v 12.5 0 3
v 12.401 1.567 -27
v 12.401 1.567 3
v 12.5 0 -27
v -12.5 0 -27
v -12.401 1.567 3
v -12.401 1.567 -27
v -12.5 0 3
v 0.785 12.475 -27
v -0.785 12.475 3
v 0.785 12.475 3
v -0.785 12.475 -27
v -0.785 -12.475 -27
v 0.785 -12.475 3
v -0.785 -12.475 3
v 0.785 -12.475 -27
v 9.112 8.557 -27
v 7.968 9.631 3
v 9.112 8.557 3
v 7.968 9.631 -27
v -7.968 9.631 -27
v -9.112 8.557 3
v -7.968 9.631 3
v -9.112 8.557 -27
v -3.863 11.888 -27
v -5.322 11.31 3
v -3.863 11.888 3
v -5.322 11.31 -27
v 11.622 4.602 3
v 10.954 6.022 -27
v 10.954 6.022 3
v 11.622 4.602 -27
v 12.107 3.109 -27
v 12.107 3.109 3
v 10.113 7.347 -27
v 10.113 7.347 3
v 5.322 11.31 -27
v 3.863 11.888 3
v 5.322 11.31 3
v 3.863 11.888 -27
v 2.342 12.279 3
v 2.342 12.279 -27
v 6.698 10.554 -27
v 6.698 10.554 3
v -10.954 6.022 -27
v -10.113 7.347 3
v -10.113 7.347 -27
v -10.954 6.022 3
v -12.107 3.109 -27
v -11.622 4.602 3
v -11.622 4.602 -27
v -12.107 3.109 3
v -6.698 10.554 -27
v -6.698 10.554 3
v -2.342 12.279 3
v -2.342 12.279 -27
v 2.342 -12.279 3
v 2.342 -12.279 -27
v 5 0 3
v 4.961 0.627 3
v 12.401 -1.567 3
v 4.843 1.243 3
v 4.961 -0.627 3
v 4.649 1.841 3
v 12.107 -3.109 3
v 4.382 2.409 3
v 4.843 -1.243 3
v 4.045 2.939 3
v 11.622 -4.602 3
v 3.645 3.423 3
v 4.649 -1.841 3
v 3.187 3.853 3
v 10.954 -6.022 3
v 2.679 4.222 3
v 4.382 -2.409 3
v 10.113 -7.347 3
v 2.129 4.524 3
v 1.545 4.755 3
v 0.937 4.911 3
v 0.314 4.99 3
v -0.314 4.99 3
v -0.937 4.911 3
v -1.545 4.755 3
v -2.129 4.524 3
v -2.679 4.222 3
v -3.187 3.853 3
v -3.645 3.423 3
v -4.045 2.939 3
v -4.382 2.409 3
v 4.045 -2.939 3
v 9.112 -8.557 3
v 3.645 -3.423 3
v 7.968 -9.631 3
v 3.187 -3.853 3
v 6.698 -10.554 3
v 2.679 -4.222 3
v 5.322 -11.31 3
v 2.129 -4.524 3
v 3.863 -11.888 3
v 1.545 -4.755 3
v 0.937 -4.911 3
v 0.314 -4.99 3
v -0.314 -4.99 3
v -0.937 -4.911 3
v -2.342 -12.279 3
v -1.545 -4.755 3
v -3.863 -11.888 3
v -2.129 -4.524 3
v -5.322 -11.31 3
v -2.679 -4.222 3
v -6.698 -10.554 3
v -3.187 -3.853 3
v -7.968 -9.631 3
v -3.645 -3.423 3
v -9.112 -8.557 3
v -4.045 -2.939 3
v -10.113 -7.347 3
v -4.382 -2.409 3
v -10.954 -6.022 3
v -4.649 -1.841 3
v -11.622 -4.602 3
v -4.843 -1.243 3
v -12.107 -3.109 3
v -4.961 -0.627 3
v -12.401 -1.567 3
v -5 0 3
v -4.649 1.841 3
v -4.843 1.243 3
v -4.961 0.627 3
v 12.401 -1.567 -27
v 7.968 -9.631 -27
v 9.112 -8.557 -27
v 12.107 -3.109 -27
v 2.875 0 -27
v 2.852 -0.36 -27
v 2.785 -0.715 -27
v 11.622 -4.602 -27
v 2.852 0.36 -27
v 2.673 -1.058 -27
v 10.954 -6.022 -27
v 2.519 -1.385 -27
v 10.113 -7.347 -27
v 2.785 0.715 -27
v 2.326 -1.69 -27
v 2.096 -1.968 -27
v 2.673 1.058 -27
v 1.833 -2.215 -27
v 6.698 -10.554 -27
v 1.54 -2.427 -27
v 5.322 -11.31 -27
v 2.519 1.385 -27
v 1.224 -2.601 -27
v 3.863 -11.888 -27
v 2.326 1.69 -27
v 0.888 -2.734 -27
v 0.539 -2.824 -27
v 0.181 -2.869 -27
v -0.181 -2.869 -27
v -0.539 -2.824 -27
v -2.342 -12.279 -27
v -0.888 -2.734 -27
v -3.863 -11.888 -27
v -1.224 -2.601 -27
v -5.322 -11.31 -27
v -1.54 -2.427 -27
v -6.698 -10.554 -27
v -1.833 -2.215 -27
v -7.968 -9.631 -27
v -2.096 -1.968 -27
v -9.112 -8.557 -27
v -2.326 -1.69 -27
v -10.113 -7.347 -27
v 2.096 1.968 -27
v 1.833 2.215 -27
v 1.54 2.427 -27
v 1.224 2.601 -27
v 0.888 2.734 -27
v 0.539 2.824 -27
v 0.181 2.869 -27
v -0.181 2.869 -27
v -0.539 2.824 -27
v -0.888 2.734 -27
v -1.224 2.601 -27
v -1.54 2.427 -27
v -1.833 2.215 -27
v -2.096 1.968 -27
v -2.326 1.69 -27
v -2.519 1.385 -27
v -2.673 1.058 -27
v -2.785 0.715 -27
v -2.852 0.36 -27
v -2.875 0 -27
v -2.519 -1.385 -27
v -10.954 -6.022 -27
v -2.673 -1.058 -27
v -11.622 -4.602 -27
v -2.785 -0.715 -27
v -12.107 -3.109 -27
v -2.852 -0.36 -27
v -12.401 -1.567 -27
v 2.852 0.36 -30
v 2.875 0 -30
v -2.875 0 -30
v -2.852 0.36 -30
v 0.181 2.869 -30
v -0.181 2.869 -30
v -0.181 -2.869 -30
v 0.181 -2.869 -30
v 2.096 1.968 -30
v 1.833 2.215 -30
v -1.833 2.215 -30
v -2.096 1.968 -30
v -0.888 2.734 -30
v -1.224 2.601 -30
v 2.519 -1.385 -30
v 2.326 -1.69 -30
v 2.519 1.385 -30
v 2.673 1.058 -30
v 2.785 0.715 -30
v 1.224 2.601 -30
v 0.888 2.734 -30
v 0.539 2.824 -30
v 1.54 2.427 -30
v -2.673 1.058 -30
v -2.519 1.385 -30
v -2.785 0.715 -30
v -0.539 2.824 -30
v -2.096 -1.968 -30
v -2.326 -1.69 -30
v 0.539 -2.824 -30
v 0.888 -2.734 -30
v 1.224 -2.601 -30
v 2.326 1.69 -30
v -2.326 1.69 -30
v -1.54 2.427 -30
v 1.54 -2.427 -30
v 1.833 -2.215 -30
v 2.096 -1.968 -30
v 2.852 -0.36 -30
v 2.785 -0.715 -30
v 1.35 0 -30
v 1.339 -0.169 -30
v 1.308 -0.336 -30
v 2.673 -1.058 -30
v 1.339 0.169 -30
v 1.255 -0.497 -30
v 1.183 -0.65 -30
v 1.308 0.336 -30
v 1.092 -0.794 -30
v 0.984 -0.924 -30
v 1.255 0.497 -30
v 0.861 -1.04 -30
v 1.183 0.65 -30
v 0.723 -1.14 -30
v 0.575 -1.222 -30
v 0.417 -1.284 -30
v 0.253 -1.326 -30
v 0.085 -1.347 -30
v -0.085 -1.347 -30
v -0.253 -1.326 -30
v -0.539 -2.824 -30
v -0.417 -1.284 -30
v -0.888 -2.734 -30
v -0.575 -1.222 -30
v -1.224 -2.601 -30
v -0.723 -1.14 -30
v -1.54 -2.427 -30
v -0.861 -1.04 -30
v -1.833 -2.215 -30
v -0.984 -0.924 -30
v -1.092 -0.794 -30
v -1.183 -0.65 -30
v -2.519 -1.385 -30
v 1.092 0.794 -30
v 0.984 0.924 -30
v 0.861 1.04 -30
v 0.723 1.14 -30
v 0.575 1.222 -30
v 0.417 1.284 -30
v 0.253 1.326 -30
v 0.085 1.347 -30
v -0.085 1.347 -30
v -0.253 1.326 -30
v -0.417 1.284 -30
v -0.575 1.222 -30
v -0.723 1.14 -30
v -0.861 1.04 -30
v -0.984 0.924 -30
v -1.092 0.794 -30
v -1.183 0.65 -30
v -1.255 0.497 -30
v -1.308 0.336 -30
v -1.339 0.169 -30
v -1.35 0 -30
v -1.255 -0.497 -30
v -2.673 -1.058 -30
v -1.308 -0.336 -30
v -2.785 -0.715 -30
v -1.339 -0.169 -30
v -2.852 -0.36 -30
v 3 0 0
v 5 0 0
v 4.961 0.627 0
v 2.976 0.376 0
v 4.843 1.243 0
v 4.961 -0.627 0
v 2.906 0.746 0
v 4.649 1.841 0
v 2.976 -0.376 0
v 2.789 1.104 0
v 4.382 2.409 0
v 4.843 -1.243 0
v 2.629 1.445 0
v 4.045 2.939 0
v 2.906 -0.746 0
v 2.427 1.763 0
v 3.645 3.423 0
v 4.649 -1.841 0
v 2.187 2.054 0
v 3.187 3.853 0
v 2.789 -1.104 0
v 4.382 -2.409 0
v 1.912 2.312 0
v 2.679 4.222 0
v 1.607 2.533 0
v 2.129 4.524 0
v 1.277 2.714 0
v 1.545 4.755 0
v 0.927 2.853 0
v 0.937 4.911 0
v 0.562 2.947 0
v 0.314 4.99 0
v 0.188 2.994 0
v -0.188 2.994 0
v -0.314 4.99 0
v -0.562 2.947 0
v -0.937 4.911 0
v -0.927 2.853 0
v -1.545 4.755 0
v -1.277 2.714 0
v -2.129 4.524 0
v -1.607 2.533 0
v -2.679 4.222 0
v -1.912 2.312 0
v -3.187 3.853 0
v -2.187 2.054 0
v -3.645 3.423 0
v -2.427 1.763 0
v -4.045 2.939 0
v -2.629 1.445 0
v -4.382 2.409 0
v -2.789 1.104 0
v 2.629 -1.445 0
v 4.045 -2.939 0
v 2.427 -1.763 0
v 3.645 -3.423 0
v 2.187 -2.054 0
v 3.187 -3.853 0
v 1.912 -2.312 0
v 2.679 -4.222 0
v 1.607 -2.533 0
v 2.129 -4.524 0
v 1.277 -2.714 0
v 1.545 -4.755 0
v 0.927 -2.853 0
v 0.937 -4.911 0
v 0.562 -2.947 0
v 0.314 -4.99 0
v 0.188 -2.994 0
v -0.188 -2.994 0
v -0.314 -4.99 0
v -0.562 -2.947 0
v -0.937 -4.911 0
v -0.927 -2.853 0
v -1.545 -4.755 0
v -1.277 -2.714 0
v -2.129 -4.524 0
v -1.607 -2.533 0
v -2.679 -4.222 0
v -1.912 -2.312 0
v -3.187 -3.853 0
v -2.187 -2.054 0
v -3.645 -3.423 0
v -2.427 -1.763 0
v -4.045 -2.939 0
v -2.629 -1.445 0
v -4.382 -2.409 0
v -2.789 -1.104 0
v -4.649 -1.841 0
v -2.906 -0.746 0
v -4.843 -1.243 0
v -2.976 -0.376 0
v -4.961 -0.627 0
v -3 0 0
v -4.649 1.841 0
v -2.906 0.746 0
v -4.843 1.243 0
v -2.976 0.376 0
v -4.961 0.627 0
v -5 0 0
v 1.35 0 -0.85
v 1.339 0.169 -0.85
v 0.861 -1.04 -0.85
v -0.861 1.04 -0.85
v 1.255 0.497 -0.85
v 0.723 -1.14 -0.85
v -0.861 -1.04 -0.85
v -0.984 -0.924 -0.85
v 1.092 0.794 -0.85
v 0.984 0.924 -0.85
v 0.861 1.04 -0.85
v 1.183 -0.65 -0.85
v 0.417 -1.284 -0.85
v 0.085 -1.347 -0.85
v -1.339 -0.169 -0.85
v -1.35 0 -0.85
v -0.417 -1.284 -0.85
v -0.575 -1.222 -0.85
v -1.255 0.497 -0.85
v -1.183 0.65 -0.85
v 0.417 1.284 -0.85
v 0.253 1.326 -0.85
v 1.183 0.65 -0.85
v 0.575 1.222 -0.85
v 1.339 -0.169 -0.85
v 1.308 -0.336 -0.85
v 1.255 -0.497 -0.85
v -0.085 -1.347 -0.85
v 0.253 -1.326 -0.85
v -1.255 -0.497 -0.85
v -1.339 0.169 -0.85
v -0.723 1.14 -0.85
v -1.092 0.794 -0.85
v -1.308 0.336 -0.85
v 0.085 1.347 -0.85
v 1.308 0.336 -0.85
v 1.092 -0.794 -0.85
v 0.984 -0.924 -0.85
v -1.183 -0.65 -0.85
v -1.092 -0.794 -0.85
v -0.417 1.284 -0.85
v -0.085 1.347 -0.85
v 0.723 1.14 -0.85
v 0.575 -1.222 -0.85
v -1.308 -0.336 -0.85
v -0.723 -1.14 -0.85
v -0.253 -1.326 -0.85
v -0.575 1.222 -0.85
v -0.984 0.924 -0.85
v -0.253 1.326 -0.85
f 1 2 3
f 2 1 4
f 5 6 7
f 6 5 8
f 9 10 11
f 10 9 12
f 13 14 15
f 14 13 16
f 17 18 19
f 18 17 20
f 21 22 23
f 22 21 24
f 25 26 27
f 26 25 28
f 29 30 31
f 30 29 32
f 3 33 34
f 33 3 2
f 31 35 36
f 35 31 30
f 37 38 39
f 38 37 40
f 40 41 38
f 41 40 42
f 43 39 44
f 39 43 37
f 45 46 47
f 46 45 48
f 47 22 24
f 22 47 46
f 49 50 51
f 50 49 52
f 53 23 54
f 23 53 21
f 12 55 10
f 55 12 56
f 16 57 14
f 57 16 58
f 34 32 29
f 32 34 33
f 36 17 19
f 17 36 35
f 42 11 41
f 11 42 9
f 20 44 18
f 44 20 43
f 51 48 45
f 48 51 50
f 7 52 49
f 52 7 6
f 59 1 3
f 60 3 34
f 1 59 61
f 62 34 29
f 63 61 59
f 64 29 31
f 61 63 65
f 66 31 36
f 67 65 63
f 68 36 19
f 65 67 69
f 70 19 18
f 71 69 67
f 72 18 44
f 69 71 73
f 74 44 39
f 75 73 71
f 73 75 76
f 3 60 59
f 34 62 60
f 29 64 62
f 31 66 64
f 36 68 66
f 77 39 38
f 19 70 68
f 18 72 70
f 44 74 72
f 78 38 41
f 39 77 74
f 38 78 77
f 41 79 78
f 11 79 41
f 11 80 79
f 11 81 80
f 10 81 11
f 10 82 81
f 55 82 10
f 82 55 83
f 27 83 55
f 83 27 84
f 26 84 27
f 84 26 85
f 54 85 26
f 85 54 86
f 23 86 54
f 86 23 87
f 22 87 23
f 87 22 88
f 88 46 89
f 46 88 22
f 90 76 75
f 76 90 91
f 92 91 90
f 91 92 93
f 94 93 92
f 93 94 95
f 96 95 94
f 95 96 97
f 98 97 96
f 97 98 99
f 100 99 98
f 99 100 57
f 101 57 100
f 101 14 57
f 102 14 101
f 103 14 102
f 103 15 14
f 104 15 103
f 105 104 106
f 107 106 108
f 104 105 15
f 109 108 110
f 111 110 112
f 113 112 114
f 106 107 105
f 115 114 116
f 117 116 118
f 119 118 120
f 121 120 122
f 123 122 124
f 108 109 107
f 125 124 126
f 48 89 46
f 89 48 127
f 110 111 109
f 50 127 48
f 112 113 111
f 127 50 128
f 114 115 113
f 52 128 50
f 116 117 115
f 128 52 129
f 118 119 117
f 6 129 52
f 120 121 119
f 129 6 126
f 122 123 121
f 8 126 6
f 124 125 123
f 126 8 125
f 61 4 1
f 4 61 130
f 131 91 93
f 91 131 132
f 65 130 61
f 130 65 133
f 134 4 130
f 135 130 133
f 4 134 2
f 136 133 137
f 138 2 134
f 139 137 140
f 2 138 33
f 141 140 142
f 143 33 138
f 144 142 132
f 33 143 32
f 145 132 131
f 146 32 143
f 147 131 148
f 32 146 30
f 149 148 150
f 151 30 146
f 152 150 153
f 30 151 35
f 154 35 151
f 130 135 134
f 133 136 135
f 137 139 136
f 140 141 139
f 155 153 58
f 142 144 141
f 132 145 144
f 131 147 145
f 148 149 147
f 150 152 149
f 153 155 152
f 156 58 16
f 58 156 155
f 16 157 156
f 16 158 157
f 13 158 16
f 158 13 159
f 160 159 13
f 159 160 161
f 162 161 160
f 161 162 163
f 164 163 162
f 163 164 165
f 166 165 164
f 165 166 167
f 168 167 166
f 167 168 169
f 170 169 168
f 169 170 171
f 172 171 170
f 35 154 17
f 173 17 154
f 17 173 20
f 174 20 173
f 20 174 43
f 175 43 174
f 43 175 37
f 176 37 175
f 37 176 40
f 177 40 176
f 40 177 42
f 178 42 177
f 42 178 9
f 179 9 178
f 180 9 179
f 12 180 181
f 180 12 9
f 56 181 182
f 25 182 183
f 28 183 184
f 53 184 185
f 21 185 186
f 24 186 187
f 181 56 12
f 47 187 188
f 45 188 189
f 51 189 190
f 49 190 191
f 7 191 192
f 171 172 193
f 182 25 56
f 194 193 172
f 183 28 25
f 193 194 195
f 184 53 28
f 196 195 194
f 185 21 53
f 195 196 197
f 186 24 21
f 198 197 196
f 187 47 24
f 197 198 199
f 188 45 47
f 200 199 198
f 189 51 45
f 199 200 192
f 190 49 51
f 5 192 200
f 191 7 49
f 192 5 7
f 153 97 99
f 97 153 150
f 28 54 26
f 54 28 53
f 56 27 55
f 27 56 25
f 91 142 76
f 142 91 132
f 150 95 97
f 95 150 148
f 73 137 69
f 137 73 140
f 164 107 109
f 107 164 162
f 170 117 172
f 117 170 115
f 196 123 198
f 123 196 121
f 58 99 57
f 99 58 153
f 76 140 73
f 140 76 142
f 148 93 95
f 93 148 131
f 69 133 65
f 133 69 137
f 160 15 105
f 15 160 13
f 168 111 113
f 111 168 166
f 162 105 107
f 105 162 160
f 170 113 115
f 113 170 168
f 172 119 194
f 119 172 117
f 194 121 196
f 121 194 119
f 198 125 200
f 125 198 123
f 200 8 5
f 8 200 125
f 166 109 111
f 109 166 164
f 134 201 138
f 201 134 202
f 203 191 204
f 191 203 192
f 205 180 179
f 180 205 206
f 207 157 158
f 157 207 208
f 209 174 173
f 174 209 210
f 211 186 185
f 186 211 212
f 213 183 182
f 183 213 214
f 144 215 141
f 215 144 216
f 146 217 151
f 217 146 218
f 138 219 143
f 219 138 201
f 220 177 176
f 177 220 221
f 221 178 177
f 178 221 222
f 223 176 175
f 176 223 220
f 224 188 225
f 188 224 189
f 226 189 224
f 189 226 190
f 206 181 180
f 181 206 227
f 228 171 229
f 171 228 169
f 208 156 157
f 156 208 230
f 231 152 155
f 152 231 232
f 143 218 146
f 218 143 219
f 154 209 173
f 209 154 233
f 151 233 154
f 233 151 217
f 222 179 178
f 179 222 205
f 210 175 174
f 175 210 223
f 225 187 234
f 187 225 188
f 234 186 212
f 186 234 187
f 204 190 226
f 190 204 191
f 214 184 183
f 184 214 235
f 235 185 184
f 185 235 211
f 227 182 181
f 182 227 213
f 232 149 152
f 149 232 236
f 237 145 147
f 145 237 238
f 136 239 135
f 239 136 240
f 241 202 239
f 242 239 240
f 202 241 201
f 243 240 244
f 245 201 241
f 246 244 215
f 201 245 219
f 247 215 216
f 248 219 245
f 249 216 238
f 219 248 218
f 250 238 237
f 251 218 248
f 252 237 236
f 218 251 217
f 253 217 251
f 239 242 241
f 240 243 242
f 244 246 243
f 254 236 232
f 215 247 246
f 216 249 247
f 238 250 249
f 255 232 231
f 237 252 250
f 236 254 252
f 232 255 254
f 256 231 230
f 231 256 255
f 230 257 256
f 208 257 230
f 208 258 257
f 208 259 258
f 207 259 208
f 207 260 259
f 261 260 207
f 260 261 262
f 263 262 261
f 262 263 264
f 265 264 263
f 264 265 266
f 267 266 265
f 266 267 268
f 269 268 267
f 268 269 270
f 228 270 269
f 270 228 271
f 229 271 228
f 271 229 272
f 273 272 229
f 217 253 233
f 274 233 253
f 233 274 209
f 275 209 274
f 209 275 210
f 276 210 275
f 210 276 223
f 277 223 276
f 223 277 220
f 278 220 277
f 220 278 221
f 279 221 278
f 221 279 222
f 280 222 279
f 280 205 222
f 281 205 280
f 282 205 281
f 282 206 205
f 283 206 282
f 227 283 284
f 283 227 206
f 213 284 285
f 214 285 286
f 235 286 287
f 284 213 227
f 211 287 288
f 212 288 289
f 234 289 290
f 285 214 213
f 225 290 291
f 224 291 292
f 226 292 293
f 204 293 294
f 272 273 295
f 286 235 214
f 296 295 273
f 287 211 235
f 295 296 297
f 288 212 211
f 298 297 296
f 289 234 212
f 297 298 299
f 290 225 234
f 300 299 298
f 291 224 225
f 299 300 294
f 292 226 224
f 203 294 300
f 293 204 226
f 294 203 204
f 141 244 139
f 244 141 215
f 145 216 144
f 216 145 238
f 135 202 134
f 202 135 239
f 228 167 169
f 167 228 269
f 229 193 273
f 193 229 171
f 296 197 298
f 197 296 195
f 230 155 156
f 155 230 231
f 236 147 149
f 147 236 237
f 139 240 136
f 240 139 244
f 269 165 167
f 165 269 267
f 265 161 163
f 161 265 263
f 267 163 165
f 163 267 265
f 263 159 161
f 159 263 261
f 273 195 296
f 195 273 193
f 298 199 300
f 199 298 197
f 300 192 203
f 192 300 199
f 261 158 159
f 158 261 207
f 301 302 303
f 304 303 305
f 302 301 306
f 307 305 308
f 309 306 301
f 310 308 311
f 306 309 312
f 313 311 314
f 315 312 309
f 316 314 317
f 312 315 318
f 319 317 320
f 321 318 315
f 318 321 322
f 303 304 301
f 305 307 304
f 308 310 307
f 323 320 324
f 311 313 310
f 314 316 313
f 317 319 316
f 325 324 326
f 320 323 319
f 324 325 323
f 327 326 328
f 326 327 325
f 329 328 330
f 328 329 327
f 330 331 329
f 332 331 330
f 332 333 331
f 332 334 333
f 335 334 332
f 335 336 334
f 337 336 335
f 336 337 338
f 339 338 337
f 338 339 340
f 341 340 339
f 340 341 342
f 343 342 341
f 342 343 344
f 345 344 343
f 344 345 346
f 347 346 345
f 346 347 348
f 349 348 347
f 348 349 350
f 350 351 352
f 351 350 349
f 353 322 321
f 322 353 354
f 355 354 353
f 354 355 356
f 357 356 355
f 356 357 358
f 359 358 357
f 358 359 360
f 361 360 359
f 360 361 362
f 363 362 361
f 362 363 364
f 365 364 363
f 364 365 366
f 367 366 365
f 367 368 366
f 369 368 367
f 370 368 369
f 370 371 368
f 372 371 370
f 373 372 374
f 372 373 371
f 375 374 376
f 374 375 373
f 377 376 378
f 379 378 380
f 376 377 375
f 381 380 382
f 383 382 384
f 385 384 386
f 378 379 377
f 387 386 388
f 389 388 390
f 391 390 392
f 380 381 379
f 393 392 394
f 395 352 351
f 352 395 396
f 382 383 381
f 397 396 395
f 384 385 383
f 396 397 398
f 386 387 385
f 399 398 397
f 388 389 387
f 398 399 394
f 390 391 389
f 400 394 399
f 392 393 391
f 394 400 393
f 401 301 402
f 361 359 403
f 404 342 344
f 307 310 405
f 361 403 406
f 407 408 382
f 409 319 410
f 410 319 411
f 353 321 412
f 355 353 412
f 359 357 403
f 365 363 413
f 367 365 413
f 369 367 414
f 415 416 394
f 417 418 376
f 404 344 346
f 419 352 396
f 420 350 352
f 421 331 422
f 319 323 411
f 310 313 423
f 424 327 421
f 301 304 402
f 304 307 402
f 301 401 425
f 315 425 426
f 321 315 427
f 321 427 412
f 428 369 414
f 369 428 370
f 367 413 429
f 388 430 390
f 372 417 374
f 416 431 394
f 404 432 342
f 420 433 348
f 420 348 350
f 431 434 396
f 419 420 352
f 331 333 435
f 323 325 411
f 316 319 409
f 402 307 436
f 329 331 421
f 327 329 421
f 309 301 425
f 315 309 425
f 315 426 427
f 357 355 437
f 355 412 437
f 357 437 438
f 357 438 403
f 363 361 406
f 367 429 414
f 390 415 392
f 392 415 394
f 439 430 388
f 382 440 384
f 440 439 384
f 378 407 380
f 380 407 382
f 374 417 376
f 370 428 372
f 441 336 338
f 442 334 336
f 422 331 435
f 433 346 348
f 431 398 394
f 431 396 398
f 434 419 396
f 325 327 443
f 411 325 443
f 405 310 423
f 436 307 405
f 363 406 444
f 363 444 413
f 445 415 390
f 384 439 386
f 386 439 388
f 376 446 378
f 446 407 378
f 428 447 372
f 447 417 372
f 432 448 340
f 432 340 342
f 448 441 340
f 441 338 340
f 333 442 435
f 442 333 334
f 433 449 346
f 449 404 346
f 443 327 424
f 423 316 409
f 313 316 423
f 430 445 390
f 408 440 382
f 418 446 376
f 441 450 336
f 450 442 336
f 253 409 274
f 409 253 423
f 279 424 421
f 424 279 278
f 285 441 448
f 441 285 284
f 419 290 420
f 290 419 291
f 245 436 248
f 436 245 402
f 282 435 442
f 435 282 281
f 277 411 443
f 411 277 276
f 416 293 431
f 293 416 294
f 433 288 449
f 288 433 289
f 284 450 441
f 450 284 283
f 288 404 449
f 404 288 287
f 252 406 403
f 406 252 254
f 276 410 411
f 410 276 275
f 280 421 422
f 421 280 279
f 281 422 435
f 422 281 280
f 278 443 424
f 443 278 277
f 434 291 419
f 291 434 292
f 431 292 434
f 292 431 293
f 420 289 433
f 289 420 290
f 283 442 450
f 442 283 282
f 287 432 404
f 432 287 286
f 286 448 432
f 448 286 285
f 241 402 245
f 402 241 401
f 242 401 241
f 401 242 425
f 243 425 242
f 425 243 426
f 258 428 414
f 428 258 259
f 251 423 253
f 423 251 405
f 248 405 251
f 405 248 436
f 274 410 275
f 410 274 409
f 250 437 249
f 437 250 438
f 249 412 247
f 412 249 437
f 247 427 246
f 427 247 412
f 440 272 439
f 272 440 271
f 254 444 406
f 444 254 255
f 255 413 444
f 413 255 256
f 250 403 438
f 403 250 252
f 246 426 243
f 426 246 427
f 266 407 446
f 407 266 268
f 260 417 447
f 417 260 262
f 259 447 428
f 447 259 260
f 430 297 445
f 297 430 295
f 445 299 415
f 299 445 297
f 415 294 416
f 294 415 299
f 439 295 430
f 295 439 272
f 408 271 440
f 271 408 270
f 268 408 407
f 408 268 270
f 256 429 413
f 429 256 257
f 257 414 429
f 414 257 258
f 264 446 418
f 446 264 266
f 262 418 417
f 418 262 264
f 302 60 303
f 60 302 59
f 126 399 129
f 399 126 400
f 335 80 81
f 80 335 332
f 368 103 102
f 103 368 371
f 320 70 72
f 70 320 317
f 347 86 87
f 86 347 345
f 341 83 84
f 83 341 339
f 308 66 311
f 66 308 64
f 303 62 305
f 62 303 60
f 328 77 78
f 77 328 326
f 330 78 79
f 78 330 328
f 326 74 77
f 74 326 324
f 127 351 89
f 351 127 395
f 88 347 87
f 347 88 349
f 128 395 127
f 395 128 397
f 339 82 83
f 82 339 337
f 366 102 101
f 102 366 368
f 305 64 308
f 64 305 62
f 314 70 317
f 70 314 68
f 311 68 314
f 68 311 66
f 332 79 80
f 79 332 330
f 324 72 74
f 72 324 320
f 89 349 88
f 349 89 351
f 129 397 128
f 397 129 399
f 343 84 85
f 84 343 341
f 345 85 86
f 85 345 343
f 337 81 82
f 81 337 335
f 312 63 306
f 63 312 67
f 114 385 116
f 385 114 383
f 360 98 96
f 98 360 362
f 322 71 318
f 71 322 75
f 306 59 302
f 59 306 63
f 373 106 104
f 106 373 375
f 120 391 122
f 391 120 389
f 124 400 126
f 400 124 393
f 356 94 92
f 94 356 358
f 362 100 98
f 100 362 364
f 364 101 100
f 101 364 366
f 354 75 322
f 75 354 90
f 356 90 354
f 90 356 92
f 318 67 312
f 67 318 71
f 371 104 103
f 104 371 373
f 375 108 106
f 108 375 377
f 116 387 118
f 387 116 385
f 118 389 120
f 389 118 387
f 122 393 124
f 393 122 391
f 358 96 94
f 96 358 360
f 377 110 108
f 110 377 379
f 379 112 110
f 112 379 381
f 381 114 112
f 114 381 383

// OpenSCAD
$fn = 50;

difference() {
	union() {
		translate(v = [0, 0, -27.0]) {
			cylinder(h = 30, r = 12.5);
		}
		#translate(v = [0, 0, -30.0]) {
			cylinder(h = 30, r = 2.875);
		}
	}
	union() {
		translate(v = [0, 0, 0]) {
			rotate(a = [0, 0, 0]) {
				difference() {
					union() {
						translate(v = [0, 0, -30.0]) {
							cylinder(h = 30, r = 1.0);
						}
						translate(v = [0, 0, -0.85]) {
							cylinder(h = 0.85, r1 = 1.35, r2 = 3.0);
						}
						translate(v = [0, 0, -30.0]) {
							cylinder(h = 30, r = 1.35);
						}
						translate(v = [0, 0, -30.0]) {
							cylinder(h = 30, r = 1.0);
						}
					}
					union();
				}
			}
		}
		#cylinder(h = 3, r = 5.0);
	}
}
